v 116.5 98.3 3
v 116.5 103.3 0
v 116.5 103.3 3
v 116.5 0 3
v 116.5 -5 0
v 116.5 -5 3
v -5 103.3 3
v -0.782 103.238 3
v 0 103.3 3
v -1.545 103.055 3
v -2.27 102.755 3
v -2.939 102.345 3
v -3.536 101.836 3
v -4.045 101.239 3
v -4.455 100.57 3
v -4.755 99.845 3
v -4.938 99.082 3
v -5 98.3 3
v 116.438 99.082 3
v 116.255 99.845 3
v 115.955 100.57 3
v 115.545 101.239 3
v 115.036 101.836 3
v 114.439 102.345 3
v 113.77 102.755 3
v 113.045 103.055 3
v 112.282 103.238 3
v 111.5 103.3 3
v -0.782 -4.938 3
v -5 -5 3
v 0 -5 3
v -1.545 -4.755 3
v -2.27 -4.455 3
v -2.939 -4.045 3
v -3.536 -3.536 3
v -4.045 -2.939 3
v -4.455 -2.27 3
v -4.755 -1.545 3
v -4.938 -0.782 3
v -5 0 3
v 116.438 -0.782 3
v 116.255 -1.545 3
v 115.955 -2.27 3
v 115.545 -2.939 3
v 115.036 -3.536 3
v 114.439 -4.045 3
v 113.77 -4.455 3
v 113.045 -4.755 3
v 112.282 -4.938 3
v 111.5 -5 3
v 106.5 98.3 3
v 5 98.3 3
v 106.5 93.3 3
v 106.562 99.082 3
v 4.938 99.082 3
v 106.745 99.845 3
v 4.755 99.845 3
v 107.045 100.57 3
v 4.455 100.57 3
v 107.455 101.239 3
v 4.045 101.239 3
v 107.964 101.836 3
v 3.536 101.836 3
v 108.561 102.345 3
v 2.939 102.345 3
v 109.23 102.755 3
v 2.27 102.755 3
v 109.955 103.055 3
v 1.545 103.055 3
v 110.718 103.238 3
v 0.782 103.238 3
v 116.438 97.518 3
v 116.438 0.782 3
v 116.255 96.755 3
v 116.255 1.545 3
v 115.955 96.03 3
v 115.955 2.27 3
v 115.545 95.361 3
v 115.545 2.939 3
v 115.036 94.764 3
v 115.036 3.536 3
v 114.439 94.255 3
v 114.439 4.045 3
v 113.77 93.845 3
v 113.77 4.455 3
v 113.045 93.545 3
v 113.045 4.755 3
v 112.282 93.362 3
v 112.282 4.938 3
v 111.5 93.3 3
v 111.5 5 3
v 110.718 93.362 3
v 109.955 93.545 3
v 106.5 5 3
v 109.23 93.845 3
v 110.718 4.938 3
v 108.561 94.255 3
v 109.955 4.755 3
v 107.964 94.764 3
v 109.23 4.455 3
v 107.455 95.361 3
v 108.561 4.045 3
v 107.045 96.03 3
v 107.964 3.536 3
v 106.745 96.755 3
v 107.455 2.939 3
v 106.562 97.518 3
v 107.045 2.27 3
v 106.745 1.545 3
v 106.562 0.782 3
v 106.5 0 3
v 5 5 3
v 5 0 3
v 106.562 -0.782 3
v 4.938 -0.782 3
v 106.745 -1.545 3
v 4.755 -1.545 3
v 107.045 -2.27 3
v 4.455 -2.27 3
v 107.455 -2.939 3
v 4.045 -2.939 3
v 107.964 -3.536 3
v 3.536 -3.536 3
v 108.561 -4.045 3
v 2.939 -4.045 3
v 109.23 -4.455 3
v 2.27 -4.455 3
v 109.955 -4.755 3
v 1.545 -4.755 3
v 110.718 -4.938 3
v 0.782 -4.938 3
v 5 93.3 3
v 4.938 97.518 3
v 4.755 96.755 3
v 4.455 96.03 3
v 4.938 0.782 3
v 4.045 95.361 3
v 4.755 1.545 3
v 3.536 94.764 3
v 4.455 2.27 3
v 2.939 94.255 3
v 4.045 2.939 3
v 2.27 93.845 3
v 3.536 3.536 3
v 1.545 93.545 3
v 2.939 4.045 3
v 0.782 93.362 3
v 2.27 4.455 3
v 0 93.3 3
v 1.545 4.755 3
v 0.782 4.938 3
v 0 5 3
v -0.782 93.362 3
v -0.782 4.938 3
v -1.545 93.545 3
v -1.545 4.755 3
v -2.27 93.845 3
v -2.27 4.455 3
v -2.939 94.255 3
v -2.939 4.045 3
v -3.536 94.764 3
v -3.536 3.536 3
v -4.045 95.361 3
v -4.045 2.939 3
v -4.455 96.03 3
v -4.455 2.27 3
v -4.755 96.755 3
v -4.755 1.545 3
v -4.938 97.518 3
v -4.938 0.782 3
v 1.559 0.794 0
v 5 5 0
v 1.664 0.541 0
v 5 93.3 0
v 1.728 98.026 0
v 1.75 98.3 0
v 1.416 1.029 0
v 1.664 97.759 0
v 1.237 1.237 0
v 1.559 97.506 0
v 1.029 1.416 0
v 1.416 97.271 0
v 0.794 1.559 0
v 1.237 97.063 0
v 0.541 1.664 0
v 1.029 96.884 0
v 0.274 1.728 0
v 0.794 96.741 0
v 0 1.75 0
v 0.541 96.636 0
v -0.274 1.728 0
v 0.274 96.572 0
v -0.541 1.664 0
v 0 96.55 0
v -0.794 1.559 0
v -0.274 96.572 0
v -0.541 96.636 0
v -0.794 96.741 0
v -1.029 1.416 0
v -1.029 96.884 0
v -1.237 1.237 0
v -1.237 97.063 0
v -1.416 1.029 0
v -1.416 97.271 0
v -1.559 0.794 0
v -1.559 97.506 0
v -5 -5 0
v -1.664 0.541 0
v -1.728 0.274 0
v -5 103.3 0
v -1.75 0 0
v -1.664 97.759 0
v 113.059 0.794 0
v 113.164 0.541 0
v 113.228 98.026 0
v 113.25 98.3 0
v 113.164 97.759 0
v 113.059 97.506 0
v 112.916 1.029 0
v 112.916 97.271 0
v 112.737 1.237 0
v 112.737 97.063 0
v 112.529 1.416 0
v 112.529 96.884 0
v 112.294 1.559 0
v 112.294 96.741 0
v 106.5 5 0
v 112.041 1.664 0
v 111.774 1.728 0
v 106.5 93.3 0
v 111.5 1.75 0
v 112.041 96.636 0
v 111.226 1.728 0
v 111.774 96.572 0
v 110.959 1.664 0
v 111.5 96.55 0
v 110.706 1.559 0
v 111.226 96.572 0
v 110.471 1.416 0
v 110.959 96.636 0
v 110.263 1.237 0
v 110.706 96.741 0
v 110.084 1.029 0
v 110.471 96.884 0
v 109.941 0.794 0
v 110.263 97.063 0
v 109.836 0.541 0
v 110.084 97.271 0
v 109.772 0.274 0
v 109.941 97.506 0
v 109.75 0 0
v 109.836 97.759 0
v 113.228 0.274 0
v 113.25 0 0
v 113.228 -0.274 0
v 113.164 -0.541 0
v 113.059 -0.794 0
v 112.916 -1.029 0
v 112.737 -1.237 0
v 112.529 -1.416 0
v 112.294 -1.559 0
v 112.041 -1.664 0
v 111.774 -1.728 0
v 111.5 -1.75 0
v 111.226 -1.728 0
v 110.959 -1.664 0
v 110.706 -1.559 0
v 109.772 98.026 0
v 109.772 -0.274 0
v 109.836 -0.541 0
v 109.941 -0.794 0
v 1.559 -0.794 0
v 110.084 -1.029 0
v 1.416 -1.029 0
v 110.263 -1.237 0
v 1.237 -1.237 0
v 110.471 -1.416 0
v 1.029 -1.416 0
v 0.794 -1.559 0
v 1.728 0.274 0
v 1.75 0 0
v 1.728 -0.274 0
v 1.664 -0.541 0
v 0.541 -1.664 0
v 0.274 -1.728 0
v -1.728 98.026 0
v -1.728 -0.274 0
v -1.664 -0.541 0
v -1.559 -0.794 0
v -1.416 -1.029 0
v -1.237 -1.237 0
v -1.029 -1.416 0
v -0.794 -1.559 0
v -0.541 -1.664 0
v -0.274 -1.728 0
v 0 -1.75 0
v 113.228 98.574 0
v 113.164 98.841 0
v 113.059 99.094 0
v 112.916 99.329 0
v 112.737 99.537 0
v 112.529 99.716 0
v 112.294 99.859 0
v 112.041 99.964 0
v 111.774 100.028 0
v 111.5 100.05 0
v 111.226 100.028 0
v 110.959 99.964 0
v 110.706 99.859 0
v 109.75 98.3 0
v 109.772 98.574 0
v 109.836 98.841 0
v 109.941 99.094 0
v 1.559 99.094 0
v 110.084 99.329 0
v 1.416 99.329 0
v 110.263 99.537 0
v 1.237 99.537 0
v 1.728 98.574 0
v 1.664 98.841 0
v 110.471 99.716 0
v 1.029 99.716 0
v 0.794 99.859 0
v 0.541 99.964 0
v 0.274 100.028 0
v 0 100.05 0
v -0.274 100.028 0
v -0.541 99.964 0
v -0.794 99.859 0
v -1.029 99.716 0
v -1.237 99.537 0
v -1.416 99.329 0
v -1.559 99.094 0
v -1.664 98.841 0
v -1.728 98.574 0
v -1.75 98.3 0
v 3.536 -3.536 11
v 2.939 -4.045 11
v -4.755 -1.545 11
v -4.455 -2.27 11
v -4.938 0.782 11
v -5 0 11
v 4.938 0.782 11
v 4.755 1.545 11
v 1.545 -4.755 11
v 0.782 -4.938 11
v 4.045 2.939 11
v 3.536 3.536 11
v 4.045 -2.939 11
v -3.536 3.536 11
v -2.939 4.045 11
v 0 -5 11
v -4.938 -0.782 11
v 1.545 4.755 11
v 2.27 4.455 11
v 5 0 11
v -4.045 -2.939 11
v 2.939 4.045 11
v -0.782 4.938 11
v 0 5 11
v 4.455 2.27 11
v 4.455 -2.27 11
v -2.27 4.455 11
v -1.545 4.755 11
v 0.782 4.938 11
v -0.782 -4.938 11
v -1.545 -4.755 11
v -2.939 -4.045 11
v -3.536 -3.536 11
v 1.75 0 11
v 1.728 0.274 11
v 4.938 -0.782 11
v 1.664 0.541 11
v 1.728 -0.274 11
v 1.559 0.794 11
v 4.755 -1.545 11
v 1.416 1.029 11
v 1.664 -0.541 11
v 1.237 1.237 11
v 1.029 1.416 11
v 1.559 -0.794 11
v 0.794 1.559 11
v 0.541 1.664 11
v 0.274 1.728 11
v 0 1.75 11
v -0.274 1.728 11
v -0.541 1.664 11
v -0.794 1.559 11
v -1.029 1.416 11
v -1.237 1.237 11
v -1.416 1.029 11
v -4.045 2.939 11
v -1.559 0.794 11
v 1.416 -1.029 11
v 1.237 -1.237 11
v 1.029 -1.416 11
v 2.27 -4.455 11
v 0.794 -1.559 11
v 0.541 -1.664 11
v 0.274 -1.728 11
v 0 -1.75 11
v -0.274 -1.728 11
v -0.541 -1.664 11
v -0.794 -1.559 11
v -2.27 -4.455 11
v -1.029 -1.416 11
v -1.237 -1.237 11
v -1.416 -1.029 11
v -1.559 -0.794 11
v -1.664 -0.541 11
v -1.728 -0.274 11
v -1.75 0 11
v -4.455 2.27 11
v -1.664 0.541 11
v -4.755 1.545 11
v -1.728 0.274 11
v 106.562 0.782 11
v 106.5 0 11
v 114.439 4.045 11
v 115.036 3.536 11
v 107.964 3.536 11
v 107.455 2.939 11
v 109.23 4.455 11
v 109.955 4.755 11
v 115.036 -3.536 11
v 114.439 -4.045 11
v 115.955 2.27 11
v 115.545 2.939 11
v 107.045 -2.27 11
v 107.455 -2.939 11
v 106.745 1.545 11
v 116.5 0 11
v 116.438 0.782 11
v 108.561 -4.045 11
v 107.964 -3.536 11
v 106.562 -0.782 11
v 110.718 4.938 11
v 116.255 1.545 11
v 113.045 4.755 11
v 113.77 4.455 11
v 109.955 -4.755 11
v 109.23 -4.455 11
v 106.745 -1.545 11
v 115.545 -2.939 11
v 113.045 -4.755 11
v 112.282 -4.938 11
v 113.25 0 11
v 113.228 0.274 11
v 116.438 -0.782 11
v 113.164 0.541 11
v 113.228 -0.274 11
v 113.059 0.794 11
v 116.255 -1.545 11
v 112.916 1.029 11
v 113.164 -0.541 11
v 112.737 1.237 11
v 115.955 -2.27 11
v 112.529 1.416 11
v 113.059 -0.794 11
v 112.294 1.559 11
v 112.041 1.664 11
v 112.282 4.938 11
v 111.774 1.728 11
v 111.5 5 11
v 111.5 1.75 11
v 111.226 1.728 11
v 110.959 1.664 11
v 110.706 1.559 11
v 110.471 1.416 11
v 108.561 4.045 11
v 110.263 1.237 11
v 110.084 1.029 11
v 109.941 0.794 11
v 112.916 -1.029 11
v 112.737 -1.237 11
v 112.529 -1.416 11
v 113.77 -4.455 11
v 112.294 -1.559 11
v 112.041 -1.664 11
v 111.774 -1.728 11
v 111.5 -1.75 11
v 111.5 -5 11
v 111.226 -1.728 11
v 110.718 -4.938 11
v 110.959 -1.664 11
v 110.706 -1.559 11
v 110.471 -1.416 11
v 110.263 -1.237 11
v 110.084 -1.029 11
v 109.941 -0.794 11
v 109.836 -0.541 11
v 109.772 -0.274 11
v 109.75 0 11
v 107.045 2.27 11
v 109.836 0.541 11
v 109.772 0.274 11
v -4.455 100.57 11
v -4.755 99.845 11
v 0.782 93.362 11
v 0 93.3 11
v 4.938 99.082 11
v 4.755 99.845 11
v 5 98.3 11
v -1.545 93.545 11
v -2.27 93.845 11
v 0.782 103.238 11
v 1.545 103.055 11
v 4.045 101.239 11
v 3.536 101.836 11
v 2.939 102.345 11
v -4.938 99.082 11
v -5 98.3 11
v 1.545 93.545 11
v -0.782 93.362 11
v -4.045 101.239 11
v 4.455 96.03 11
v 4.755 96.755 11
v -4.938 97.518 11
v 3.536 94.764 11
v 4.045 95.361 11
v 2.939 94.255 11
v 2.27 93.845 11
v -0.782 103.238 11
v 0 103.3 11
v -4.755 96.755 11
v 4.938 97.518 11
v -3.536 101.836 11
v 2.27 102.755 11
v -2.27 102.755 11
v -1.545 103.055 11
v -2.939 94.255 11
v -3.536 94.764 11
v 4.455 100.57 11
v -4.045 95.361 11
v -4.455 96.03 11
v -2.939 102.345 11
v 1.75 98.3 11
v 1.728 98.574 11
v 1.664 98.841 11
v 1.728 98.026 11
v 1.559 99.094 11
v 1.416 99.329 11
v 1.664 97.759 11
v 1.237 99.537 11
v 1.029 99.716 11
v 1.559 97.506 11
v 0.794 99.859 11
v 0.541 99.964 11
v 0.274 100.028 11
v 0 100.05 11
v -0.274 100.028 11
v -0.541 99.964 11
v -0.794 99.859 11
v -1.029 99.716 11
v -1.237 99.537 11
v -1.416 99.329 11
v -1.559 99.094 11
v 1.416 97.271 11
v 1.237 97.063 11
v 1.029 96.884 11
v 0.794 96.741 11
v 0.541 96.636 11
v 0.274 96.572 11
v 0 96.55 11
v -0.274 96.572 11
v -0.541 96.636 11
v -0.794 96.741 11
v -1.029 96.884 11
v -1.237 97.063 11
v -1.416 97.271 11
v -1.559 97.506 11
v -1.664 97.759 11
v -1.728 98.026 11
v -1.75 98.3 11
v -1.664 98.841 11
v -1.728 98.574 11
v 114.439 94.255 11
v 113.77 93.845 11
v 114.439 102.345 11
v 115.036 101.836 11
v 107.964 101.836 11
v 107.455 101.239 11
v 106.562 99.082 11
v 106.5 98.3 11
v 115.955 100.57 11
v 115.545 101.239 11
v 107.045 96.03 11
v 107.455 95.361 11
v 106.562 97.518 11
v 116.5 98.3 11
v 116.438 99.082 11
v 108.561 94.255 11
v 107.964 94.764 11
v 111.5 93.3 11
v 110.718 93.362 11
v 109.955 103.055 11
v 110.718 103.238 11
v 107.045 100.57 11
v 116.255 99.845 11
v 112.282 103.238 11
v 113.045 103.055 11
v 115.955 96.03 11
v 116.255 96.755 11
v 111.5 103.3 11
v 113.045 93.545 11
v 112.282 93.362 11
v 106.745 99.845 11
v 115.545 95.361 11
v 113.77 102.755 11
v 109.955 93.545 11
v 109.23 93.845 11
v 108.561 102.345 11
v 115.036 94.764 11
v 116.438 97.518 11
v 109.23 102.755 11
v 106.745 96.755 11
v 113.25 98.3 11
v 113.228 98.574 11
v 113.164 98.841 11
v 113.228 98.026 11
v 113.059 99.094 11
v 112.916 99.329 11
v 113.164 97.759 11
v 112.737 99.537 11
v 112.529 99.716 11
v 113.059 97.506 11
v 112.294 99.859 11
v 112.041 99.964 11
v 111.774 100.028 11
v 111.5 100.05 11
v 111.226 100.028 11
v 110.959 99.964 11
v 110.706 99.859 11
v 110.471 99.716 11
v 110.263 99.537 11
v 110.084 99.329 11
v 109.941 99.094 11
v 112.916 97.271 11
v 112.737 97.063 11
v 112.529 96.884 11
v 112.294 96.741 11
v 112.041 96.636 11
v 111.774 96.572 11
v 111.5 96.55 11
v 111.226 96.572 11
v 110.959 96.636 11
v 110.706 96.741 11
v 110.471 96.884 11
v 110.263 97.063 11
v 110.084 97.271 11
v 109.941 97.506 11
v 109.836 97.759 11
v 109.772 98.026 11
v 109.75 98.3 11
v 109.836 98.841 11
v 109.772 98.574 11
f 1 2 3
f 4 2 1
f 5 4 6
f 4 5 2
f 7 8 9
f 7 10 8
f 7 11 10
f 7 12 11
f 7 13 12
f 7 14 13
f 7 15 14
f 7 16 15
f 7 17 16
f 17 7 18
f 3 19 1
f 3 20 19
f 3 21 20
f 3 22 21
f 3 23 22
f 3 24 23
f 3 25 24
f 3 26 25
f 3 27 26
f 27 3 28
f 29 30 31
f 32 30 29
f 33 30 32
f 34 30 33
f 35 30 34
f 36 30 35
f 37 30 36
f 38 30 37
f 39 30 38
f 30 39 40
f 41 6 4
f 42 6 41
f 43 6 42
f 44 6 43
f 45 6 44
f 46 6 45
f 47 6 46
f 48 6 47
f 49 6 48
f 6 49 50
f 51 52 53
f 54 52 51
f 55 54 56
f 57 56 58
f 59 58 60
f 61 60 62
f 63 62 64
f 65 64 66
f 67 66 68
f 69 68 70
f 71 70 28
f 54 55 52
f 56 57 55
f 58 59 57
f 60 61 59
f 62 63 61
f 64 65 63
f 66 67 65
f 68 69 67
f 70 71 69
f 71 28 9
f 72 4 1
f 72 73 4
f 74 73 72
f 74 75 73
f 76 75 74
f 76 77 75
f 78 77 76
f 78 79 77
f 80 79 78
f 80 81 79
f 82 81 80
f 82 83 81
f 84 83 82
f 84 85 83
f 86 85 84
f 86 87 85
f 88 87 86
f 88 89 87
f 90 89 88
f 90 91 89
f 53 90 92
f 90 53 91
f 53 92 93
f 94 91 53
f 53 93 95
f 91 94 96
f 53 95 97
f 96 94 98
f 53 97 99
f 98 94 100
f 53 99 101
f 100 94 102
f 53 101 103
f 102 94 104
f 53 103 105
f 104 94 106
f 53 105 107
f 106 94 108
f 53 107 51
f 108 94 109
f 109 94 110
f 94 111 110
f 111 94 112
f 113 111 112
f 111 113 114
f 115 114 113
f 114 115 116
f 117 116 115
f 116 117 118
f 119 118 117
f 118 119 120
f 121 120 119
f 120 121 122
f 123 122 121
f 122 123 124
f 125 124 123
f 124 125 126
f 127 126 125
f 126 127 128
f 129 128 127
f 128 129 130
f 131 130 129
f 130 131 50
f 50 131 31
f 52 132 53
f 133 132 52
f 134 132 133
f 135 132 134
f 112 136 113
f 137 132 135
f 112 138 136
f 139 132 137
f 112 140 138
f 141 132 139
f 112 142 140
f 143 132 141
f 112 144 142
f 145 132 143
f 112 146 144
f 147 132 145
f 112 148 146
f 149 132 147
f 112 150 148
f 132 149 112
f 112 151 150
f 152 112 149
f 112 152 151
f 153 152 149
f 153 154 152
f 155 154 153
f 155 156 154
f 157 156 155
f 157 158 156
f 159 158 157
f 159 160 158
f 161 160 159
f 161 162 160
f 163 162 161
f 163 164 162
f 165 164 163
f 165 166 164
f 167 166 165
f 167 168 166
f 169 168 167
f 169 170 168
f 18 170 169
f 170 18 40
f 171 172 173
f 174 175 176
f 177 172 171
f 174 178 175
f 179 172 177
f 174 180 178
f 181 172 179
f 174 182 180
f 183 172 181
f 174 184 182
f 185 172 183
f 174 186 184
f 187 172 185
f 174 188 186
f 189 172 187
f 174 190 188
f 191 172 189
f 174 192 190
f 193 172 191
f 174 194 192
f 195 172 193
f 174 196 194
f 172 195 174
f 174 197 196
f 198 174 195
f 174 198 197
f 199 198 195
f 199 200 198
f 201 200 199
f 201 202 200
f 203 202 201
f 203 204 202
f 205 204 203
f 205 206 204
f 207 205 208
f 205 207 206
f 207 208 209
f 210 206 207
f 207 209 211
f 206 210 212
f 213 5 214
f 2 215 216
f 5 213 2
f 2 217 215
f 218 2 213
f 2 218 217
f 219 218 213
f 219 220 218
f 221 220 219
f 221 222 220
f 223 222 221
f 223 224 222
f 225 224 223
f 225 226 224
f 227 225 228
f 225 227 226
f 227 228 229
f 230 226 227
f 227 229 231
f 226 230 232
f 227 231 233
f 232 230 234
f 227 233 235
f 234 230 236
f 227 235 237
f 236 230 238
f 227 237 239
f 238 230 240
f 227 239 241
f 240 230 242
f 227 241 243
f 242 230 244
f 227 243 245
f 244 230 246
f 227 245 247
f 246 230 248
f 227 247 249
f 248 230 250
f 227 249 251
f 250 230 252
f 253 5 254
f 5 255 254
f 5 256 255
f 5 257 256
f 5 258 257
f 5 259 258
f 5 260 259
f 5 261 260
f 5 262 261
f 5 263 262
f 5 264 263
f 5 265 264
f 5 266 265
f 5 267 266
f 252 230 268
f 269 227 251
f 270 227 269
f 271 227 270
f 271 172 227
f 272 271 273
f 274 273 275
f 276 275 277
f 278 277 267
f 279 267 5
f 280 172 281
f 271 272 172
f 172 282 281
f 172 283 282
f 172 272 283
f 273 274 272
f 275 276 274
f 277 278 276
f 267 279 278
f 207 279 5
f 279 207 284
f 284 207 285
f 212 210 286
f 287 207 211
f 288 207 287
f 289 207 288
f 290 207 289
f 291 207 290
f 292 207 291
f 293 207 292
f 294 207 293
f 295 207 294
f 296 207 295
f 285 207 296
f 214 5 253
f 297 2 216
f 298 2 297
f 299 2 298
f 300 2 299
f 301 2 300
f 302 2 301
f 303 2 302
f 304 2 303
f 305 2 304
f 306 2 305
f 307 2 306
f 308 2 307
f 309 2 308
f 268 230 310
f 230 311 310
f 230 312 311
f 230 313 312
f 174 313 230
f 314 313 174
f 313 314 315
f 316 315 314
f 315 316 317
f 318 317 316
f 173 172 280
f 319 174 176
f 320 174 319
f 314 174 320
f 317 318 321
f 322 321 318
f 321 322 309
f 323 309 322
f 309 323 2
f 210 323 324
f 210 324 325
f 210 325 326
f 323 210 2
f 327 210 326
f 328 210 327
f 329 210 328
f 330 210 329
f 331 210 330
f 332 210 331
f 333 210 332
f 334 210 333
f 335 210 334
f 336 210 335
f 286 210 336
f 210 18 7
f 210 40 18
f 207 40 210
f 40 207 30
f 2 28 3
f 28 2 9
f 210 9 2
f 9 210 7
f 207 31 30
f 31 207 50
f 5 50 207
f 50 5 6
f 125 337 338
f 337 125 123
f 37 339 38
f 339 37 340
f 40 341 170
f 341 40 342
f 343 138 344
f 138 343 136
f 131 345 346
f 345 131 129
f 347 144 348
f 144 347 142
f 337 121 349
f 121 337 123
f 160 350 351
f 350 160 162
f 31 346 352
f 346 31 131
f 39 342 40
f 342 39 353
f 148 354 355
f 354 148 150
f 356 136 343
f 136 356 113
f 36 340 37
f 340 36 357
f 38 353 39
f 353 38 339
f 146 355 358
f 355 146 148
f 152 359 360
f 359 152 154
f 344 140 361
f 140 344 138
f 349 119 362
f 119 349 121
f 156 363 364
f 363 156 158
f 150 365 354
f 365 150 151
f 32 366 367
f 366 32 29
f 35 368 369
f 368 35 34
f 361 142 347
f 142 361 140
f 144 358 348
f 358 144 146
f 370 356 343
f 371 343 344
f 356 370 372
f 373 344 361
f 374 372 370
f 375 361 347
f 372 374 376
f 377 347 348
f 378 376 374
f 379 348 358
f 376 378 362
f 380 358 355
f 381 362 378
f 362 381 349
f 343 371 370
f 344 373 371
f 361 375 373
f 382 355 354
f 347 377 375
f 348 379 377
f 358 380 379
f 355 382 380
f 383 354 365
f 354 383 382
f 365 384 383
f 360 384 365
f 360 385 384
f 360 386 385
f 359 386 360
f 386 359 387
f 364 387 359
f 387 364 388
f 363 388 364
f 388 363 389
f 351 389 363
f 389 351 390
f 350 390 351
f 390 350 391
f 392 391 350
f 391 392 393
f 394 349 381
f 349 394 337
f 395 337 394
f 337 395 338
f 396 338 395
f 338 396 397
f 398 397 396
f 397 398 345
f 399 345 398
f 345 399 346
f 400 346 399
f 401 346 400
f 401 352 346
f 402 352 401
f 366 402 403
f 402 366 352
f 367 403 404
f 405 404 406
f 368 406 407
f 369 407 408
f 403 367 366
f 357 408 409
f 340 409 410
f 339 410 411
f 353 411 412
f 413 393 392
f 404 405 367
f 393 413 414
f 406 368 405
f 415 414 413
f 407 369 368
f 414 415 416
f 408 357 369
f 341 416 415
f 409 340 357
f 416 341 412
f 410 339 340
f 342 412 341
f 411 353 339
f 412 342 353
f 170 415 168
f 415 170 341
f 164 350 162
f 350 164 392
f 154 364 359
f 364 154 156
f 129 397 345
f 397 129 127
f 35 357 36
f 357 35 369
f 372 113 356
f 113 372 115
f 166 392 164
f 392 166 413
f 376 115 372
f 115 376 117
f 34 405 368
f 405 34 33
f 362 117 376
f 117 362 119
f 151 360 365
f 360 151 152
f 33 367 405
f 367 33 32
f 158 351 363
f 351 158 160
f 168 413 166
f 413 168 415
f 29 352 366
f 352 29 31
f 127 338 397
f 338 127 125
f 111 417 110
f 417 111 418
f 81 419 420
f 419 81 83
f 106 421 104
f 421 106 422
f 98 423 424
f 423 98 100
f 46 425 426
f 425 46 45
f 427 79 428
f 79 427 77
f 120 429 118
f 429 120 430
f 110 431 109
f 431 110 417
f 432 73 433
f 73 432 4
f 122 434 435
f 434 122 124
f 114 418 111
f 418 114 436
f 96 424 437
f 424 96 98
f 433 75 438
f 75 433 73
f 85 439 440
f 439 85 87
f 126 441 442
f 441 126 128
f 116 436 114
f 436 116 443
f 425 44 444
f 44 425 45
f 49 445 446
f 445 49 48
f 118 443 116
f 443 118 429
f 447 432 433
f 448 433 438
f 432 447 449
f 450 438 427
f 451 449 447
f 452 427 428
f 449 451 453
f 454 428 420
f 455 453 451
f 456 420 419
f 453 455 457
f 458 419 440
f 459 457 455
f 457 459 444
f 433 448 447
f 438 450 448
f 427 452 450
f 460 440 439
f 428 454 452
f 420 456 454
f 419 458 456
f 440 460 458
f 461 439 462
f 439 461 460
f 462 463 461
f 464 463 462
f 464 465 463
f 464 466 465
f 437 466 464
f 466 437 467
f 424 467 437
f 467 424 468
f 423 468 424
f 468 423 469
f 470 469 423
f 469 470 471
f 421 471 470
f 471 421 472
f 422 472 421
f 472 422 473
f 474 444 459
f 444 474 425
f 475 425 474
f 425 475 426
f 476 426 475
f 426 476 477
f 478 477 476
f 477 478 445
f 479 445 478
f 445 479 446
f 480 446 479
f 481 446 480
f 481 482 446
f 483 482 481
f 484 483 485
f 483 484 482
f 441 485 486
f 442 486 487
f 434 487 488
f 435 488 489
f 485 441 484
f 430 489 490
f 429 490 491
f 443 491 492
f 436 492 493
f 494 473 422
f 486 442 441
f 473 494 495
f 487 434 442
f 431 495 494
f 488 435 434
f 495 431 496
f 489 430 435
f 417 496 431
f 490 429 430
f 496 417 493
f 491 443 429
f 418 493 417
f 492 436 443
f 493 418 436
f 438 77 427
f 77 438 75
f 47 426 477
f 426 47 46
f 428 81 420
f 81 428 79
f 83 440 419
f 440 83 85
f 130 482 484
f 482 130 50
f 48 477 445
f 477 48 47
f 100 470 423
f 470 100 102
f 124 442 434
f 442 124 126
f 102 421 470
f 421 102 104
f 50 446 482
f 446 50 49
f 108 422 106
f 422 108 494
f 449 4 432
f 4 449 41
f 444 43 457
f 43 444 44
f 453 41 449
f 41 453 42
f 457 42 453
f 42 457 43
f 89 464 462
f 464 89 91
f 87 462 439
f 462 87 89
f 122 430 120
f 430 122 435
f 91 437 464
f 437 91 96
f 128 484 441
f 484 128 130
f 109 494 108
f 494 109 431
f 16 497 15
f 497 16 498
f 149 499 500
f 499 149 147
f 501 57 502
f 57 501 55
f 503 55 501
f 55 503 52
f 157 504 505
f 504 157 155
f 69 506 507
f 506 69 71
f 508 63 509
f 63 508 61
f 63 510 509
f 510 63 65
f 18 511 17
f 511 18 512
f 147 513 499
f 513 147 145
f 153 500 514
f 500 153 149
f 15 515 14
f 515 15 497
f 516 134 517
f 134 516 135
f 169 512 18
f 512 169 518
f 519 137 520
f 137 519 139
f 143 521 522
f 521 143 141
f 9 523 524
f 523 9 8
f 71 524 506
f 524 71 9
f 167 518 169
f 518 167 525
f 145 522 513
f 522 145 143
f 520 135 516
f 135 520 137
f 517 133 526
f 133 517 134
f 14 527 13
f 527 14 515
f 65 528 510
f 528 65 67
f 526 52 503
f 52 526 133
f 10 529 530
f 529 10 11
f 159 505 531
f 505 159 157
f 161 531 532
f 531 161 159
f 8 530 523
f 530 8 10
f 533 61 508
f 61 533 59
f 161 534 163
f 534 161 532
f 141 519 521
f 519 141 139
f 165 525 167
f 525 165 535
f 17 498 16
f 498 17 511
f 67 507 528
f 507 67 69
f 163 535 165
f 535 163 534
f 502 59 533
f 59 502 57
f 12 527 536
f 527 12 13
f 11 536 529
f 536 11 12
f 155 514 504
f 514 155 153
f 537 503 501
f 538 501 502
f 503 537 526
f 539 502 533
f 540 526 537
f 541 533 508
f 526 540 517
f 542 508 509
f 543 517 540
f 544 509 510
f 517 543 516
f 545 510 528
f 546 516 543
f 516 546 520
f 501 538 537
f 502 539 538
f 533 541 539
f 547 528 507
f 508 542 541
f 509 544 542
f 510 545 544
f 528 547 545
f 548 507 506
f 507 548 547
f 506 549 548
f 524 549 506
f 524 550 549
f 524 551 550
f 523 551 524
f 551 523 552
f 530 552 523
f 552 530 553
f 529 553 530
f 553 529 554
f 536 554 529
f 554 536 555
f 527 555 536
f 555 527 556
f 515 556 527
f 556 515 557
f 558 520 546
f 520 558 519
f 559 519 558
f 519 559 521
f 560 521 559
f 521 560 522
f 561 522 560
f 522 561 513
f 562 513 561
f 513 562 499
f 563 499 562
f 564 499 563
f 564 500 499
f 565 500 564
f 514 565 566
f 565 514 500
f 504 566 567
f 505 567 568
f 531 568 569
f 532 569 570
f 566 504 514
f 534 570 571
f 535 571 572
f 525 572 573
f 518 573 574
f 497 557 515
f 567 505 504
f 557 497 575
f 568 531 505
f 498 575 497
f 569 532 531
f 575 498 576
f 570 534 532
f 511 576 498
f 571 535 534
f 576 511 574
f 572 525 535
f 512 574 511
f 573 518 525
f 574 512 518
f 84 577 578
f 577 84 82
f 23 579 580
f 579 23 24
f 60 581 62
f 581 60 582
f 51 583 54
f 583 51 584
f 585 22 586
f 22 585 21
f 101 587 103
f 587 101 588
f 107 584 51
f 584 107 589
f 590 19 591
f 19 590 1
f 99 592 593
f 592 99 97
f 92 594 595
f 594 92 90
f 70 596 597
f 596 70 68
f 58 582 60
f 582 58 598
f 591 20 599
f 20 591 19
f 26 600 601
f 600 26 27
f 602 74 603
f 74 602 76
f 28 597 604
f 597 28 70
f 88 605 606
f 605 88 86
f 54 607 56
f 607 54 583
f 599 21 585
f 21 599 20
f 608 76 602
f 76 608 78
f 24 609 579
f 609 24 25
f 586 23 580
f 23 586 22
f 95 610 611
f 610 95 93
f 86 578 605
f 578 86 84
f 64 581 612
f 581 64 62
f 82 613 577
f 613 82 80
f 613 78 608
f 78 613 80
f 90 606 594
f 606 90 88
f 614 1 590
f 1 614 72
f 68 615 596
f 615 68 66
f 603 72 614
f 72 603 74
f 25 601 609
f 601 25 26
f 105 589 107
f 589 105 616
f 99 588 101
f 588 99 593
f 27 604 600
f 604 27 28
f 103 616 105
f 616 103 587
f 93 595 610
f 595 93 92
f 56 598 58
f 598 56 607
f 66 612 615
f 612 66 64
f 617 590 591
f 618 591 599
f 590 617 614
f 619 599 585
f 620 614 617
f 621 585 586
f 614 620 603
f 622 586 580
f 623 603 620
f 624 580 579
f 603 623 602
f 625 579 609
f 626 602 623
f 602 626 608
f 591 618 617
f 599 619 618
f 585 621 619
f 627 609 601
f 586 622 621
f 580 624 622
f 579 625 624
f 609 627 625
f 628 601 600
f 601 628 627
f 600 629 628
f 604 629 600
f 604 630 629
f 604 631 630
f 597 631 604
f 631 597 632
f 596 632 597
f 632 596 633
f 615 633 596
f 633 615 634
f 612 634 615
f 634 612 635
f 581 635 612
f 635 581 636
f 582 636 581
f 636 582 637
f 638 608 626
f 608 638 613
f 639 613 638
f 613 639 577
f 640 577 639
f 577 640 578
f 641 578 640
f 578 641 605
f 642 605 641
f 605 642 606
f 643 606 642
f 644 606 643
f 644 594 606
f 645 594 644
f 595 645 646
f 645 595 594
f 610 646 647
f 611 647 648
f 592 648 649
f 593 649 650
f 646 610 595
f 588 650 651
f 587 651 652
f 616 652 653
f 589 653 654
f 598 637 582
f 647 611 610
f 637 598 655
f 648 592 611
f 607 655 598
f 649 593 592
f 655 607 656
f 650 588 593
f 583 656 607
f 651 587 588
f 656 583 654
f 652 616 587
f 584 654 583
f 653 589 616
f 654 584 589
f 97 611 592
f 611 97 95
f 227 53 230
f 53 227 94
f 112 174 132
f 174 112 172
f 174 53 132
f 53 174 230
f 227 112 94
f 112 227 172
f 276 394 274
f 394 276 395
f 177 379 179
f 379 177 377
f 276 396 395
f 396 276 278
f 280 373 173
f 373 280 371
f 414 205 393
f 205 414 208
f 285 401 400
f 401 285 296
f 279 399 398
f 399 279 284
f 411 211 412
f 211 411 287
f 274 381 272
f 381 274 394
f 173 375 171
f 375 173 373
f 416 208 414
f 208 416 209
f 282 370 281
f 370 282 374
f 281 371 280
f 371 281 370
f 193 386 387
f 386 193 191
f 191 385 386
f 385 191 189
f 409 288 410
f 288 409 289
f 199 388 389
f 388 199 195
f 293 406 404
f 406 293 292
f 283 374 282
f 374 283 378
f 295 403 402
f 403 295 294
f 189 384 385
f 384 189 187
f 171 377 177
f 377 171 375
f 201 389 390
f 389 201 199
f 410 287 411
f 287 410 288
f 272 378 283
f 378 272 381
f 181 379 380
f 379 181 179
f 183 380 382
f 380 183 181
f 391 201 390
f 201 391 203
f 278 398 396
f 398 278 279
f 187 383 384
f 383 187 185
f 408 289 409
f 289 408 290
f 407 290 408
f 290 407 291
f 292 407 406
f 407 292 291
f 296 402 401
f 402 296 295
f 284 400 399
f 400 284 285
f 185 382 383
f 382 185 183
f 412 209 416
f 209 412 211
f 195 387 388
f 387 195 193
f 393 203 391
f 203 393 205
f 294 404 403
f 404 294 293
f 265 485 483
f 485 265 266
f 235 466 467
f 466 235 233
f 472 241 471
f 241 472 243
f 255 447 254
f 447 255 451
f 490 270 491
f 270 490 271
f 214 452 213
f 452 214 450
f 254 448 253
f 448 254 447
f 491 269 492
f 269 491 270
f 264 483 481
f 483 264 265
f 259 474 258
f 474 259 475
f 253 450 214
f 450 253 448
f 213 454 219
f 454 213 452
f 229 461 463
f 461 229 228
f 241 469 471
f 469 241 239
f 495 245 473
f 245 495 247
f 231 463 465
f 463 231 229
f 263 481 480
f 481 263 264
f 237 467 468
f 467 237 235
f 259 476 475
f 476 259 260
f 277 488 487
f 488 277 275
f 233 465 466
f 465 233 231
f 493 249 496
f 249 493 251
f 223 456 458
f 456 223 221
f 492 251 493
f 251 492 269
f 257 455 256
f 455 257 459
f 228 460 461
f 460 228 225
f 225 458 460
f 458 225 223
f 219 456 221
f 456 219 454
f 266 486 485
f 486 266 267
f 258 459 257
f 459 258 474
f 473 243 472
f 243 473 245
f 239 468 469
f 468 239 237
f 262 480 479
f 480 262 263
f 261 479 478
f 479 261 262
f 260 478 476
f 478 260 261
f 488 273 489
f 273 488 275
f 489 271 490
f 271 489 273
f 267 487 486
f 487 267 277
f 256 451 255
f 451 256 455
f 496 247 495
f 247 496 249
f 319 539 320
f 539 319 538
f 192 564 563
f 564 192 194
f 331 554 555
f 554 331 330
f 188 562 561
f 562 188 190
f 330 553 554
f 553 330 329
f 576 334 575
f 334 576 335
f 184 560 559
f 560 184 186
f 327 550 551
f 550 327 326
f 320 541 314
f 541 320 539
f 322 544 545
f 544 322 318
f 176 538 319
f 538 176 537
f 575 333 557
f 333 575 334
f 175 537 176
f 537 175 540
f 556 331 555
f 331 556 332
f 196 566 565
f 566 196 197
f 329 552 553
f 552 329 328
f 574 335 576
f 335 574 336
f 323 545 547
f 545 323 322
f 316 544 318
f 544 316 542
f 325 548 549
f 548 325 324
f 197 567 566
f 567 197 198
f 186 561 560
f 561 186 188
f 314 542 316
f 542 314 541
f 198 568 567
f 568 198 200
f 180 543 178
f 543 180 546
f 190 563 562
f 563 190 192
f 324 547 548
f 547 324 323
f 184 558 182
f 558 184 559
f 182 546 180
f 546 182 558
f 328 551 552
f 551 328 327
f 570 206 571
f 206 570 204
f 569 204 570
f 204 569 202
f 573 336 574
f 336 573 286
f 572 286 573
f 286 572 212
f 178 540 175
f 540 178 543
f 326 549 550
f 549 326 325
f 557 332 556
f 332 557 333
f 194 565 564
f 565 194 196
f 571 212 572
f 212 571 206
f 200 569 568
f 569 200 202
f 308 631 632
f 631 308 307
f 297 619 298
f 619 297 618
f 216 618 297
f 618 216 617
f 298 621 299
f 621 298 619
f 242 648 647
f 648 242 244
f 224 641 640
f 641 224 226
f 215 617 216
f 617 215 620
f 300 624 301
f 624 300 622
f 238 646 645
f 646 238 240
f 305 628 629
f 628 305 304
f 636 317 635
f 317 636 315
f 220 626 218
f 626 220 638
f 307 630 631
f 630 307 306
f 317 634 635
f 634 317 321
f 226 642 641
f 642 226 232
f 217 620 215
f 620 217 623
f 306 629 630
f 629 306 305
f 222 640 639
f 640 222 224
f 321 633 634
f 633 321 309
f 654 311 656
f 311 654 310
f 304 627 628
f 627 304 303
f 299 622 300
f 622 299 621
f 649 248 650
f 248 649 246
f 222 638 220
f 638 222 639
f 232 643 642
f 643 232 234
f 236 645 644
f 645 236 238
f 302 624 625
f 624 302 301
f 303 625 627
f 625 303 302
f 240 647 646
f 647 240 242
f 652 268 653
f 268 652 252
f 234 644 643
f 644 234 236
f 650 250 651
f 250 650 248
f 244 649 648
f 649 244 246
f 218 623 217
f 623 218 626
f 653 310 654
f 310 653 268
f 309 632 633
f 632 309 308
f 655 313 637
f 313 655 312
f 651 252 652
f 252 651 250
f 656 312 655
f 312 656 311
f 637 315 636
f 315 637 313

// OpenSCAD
    difference() {
        union() {
            translate([-5,-5,0])
                cube([111.5+10, 98.3+10, 3]);
            translate([0,0,0]) rotate([0, 0, 0])  cylinder(h=11, d=10,  $fn=40);
            translate([111.5,0,0]) rotate([0, 0, 0])  cylinder(h=11, d=10,  $fn=40);
            translate([0,98.3,0]) rotate([0, 0, 0])  cylinder(h=11, d=10,  $fn=40);
            translate([111.5,98.3,0]) rotate([0, 0, 0])  cylinder(h=11, d=10,  $fn=40);

        }
        union() {
            translate([-5+10,-5+10,-1])
                cube([111.5-10, 98.3-10, 10]);

            translate([0,0,-1]) rotate([0, 0, 0])  cylinder(h=77, d=3.5,  $fn=40);
            translate([111.5,0,-1]) rotate([0, 0, 0])  cylinder(h=77, d=3.5,  $fn=40);
            translate([0,98.3,-1]) rotate([0, 0, 0])  cylinder(h=77, d=3.5,  $fn=40);
            translate([111.5,98.3,-1]) rotate([0, 0, 0])  cylinder(h=77, d=3.5,  $fn=40);
            
        }
    }
